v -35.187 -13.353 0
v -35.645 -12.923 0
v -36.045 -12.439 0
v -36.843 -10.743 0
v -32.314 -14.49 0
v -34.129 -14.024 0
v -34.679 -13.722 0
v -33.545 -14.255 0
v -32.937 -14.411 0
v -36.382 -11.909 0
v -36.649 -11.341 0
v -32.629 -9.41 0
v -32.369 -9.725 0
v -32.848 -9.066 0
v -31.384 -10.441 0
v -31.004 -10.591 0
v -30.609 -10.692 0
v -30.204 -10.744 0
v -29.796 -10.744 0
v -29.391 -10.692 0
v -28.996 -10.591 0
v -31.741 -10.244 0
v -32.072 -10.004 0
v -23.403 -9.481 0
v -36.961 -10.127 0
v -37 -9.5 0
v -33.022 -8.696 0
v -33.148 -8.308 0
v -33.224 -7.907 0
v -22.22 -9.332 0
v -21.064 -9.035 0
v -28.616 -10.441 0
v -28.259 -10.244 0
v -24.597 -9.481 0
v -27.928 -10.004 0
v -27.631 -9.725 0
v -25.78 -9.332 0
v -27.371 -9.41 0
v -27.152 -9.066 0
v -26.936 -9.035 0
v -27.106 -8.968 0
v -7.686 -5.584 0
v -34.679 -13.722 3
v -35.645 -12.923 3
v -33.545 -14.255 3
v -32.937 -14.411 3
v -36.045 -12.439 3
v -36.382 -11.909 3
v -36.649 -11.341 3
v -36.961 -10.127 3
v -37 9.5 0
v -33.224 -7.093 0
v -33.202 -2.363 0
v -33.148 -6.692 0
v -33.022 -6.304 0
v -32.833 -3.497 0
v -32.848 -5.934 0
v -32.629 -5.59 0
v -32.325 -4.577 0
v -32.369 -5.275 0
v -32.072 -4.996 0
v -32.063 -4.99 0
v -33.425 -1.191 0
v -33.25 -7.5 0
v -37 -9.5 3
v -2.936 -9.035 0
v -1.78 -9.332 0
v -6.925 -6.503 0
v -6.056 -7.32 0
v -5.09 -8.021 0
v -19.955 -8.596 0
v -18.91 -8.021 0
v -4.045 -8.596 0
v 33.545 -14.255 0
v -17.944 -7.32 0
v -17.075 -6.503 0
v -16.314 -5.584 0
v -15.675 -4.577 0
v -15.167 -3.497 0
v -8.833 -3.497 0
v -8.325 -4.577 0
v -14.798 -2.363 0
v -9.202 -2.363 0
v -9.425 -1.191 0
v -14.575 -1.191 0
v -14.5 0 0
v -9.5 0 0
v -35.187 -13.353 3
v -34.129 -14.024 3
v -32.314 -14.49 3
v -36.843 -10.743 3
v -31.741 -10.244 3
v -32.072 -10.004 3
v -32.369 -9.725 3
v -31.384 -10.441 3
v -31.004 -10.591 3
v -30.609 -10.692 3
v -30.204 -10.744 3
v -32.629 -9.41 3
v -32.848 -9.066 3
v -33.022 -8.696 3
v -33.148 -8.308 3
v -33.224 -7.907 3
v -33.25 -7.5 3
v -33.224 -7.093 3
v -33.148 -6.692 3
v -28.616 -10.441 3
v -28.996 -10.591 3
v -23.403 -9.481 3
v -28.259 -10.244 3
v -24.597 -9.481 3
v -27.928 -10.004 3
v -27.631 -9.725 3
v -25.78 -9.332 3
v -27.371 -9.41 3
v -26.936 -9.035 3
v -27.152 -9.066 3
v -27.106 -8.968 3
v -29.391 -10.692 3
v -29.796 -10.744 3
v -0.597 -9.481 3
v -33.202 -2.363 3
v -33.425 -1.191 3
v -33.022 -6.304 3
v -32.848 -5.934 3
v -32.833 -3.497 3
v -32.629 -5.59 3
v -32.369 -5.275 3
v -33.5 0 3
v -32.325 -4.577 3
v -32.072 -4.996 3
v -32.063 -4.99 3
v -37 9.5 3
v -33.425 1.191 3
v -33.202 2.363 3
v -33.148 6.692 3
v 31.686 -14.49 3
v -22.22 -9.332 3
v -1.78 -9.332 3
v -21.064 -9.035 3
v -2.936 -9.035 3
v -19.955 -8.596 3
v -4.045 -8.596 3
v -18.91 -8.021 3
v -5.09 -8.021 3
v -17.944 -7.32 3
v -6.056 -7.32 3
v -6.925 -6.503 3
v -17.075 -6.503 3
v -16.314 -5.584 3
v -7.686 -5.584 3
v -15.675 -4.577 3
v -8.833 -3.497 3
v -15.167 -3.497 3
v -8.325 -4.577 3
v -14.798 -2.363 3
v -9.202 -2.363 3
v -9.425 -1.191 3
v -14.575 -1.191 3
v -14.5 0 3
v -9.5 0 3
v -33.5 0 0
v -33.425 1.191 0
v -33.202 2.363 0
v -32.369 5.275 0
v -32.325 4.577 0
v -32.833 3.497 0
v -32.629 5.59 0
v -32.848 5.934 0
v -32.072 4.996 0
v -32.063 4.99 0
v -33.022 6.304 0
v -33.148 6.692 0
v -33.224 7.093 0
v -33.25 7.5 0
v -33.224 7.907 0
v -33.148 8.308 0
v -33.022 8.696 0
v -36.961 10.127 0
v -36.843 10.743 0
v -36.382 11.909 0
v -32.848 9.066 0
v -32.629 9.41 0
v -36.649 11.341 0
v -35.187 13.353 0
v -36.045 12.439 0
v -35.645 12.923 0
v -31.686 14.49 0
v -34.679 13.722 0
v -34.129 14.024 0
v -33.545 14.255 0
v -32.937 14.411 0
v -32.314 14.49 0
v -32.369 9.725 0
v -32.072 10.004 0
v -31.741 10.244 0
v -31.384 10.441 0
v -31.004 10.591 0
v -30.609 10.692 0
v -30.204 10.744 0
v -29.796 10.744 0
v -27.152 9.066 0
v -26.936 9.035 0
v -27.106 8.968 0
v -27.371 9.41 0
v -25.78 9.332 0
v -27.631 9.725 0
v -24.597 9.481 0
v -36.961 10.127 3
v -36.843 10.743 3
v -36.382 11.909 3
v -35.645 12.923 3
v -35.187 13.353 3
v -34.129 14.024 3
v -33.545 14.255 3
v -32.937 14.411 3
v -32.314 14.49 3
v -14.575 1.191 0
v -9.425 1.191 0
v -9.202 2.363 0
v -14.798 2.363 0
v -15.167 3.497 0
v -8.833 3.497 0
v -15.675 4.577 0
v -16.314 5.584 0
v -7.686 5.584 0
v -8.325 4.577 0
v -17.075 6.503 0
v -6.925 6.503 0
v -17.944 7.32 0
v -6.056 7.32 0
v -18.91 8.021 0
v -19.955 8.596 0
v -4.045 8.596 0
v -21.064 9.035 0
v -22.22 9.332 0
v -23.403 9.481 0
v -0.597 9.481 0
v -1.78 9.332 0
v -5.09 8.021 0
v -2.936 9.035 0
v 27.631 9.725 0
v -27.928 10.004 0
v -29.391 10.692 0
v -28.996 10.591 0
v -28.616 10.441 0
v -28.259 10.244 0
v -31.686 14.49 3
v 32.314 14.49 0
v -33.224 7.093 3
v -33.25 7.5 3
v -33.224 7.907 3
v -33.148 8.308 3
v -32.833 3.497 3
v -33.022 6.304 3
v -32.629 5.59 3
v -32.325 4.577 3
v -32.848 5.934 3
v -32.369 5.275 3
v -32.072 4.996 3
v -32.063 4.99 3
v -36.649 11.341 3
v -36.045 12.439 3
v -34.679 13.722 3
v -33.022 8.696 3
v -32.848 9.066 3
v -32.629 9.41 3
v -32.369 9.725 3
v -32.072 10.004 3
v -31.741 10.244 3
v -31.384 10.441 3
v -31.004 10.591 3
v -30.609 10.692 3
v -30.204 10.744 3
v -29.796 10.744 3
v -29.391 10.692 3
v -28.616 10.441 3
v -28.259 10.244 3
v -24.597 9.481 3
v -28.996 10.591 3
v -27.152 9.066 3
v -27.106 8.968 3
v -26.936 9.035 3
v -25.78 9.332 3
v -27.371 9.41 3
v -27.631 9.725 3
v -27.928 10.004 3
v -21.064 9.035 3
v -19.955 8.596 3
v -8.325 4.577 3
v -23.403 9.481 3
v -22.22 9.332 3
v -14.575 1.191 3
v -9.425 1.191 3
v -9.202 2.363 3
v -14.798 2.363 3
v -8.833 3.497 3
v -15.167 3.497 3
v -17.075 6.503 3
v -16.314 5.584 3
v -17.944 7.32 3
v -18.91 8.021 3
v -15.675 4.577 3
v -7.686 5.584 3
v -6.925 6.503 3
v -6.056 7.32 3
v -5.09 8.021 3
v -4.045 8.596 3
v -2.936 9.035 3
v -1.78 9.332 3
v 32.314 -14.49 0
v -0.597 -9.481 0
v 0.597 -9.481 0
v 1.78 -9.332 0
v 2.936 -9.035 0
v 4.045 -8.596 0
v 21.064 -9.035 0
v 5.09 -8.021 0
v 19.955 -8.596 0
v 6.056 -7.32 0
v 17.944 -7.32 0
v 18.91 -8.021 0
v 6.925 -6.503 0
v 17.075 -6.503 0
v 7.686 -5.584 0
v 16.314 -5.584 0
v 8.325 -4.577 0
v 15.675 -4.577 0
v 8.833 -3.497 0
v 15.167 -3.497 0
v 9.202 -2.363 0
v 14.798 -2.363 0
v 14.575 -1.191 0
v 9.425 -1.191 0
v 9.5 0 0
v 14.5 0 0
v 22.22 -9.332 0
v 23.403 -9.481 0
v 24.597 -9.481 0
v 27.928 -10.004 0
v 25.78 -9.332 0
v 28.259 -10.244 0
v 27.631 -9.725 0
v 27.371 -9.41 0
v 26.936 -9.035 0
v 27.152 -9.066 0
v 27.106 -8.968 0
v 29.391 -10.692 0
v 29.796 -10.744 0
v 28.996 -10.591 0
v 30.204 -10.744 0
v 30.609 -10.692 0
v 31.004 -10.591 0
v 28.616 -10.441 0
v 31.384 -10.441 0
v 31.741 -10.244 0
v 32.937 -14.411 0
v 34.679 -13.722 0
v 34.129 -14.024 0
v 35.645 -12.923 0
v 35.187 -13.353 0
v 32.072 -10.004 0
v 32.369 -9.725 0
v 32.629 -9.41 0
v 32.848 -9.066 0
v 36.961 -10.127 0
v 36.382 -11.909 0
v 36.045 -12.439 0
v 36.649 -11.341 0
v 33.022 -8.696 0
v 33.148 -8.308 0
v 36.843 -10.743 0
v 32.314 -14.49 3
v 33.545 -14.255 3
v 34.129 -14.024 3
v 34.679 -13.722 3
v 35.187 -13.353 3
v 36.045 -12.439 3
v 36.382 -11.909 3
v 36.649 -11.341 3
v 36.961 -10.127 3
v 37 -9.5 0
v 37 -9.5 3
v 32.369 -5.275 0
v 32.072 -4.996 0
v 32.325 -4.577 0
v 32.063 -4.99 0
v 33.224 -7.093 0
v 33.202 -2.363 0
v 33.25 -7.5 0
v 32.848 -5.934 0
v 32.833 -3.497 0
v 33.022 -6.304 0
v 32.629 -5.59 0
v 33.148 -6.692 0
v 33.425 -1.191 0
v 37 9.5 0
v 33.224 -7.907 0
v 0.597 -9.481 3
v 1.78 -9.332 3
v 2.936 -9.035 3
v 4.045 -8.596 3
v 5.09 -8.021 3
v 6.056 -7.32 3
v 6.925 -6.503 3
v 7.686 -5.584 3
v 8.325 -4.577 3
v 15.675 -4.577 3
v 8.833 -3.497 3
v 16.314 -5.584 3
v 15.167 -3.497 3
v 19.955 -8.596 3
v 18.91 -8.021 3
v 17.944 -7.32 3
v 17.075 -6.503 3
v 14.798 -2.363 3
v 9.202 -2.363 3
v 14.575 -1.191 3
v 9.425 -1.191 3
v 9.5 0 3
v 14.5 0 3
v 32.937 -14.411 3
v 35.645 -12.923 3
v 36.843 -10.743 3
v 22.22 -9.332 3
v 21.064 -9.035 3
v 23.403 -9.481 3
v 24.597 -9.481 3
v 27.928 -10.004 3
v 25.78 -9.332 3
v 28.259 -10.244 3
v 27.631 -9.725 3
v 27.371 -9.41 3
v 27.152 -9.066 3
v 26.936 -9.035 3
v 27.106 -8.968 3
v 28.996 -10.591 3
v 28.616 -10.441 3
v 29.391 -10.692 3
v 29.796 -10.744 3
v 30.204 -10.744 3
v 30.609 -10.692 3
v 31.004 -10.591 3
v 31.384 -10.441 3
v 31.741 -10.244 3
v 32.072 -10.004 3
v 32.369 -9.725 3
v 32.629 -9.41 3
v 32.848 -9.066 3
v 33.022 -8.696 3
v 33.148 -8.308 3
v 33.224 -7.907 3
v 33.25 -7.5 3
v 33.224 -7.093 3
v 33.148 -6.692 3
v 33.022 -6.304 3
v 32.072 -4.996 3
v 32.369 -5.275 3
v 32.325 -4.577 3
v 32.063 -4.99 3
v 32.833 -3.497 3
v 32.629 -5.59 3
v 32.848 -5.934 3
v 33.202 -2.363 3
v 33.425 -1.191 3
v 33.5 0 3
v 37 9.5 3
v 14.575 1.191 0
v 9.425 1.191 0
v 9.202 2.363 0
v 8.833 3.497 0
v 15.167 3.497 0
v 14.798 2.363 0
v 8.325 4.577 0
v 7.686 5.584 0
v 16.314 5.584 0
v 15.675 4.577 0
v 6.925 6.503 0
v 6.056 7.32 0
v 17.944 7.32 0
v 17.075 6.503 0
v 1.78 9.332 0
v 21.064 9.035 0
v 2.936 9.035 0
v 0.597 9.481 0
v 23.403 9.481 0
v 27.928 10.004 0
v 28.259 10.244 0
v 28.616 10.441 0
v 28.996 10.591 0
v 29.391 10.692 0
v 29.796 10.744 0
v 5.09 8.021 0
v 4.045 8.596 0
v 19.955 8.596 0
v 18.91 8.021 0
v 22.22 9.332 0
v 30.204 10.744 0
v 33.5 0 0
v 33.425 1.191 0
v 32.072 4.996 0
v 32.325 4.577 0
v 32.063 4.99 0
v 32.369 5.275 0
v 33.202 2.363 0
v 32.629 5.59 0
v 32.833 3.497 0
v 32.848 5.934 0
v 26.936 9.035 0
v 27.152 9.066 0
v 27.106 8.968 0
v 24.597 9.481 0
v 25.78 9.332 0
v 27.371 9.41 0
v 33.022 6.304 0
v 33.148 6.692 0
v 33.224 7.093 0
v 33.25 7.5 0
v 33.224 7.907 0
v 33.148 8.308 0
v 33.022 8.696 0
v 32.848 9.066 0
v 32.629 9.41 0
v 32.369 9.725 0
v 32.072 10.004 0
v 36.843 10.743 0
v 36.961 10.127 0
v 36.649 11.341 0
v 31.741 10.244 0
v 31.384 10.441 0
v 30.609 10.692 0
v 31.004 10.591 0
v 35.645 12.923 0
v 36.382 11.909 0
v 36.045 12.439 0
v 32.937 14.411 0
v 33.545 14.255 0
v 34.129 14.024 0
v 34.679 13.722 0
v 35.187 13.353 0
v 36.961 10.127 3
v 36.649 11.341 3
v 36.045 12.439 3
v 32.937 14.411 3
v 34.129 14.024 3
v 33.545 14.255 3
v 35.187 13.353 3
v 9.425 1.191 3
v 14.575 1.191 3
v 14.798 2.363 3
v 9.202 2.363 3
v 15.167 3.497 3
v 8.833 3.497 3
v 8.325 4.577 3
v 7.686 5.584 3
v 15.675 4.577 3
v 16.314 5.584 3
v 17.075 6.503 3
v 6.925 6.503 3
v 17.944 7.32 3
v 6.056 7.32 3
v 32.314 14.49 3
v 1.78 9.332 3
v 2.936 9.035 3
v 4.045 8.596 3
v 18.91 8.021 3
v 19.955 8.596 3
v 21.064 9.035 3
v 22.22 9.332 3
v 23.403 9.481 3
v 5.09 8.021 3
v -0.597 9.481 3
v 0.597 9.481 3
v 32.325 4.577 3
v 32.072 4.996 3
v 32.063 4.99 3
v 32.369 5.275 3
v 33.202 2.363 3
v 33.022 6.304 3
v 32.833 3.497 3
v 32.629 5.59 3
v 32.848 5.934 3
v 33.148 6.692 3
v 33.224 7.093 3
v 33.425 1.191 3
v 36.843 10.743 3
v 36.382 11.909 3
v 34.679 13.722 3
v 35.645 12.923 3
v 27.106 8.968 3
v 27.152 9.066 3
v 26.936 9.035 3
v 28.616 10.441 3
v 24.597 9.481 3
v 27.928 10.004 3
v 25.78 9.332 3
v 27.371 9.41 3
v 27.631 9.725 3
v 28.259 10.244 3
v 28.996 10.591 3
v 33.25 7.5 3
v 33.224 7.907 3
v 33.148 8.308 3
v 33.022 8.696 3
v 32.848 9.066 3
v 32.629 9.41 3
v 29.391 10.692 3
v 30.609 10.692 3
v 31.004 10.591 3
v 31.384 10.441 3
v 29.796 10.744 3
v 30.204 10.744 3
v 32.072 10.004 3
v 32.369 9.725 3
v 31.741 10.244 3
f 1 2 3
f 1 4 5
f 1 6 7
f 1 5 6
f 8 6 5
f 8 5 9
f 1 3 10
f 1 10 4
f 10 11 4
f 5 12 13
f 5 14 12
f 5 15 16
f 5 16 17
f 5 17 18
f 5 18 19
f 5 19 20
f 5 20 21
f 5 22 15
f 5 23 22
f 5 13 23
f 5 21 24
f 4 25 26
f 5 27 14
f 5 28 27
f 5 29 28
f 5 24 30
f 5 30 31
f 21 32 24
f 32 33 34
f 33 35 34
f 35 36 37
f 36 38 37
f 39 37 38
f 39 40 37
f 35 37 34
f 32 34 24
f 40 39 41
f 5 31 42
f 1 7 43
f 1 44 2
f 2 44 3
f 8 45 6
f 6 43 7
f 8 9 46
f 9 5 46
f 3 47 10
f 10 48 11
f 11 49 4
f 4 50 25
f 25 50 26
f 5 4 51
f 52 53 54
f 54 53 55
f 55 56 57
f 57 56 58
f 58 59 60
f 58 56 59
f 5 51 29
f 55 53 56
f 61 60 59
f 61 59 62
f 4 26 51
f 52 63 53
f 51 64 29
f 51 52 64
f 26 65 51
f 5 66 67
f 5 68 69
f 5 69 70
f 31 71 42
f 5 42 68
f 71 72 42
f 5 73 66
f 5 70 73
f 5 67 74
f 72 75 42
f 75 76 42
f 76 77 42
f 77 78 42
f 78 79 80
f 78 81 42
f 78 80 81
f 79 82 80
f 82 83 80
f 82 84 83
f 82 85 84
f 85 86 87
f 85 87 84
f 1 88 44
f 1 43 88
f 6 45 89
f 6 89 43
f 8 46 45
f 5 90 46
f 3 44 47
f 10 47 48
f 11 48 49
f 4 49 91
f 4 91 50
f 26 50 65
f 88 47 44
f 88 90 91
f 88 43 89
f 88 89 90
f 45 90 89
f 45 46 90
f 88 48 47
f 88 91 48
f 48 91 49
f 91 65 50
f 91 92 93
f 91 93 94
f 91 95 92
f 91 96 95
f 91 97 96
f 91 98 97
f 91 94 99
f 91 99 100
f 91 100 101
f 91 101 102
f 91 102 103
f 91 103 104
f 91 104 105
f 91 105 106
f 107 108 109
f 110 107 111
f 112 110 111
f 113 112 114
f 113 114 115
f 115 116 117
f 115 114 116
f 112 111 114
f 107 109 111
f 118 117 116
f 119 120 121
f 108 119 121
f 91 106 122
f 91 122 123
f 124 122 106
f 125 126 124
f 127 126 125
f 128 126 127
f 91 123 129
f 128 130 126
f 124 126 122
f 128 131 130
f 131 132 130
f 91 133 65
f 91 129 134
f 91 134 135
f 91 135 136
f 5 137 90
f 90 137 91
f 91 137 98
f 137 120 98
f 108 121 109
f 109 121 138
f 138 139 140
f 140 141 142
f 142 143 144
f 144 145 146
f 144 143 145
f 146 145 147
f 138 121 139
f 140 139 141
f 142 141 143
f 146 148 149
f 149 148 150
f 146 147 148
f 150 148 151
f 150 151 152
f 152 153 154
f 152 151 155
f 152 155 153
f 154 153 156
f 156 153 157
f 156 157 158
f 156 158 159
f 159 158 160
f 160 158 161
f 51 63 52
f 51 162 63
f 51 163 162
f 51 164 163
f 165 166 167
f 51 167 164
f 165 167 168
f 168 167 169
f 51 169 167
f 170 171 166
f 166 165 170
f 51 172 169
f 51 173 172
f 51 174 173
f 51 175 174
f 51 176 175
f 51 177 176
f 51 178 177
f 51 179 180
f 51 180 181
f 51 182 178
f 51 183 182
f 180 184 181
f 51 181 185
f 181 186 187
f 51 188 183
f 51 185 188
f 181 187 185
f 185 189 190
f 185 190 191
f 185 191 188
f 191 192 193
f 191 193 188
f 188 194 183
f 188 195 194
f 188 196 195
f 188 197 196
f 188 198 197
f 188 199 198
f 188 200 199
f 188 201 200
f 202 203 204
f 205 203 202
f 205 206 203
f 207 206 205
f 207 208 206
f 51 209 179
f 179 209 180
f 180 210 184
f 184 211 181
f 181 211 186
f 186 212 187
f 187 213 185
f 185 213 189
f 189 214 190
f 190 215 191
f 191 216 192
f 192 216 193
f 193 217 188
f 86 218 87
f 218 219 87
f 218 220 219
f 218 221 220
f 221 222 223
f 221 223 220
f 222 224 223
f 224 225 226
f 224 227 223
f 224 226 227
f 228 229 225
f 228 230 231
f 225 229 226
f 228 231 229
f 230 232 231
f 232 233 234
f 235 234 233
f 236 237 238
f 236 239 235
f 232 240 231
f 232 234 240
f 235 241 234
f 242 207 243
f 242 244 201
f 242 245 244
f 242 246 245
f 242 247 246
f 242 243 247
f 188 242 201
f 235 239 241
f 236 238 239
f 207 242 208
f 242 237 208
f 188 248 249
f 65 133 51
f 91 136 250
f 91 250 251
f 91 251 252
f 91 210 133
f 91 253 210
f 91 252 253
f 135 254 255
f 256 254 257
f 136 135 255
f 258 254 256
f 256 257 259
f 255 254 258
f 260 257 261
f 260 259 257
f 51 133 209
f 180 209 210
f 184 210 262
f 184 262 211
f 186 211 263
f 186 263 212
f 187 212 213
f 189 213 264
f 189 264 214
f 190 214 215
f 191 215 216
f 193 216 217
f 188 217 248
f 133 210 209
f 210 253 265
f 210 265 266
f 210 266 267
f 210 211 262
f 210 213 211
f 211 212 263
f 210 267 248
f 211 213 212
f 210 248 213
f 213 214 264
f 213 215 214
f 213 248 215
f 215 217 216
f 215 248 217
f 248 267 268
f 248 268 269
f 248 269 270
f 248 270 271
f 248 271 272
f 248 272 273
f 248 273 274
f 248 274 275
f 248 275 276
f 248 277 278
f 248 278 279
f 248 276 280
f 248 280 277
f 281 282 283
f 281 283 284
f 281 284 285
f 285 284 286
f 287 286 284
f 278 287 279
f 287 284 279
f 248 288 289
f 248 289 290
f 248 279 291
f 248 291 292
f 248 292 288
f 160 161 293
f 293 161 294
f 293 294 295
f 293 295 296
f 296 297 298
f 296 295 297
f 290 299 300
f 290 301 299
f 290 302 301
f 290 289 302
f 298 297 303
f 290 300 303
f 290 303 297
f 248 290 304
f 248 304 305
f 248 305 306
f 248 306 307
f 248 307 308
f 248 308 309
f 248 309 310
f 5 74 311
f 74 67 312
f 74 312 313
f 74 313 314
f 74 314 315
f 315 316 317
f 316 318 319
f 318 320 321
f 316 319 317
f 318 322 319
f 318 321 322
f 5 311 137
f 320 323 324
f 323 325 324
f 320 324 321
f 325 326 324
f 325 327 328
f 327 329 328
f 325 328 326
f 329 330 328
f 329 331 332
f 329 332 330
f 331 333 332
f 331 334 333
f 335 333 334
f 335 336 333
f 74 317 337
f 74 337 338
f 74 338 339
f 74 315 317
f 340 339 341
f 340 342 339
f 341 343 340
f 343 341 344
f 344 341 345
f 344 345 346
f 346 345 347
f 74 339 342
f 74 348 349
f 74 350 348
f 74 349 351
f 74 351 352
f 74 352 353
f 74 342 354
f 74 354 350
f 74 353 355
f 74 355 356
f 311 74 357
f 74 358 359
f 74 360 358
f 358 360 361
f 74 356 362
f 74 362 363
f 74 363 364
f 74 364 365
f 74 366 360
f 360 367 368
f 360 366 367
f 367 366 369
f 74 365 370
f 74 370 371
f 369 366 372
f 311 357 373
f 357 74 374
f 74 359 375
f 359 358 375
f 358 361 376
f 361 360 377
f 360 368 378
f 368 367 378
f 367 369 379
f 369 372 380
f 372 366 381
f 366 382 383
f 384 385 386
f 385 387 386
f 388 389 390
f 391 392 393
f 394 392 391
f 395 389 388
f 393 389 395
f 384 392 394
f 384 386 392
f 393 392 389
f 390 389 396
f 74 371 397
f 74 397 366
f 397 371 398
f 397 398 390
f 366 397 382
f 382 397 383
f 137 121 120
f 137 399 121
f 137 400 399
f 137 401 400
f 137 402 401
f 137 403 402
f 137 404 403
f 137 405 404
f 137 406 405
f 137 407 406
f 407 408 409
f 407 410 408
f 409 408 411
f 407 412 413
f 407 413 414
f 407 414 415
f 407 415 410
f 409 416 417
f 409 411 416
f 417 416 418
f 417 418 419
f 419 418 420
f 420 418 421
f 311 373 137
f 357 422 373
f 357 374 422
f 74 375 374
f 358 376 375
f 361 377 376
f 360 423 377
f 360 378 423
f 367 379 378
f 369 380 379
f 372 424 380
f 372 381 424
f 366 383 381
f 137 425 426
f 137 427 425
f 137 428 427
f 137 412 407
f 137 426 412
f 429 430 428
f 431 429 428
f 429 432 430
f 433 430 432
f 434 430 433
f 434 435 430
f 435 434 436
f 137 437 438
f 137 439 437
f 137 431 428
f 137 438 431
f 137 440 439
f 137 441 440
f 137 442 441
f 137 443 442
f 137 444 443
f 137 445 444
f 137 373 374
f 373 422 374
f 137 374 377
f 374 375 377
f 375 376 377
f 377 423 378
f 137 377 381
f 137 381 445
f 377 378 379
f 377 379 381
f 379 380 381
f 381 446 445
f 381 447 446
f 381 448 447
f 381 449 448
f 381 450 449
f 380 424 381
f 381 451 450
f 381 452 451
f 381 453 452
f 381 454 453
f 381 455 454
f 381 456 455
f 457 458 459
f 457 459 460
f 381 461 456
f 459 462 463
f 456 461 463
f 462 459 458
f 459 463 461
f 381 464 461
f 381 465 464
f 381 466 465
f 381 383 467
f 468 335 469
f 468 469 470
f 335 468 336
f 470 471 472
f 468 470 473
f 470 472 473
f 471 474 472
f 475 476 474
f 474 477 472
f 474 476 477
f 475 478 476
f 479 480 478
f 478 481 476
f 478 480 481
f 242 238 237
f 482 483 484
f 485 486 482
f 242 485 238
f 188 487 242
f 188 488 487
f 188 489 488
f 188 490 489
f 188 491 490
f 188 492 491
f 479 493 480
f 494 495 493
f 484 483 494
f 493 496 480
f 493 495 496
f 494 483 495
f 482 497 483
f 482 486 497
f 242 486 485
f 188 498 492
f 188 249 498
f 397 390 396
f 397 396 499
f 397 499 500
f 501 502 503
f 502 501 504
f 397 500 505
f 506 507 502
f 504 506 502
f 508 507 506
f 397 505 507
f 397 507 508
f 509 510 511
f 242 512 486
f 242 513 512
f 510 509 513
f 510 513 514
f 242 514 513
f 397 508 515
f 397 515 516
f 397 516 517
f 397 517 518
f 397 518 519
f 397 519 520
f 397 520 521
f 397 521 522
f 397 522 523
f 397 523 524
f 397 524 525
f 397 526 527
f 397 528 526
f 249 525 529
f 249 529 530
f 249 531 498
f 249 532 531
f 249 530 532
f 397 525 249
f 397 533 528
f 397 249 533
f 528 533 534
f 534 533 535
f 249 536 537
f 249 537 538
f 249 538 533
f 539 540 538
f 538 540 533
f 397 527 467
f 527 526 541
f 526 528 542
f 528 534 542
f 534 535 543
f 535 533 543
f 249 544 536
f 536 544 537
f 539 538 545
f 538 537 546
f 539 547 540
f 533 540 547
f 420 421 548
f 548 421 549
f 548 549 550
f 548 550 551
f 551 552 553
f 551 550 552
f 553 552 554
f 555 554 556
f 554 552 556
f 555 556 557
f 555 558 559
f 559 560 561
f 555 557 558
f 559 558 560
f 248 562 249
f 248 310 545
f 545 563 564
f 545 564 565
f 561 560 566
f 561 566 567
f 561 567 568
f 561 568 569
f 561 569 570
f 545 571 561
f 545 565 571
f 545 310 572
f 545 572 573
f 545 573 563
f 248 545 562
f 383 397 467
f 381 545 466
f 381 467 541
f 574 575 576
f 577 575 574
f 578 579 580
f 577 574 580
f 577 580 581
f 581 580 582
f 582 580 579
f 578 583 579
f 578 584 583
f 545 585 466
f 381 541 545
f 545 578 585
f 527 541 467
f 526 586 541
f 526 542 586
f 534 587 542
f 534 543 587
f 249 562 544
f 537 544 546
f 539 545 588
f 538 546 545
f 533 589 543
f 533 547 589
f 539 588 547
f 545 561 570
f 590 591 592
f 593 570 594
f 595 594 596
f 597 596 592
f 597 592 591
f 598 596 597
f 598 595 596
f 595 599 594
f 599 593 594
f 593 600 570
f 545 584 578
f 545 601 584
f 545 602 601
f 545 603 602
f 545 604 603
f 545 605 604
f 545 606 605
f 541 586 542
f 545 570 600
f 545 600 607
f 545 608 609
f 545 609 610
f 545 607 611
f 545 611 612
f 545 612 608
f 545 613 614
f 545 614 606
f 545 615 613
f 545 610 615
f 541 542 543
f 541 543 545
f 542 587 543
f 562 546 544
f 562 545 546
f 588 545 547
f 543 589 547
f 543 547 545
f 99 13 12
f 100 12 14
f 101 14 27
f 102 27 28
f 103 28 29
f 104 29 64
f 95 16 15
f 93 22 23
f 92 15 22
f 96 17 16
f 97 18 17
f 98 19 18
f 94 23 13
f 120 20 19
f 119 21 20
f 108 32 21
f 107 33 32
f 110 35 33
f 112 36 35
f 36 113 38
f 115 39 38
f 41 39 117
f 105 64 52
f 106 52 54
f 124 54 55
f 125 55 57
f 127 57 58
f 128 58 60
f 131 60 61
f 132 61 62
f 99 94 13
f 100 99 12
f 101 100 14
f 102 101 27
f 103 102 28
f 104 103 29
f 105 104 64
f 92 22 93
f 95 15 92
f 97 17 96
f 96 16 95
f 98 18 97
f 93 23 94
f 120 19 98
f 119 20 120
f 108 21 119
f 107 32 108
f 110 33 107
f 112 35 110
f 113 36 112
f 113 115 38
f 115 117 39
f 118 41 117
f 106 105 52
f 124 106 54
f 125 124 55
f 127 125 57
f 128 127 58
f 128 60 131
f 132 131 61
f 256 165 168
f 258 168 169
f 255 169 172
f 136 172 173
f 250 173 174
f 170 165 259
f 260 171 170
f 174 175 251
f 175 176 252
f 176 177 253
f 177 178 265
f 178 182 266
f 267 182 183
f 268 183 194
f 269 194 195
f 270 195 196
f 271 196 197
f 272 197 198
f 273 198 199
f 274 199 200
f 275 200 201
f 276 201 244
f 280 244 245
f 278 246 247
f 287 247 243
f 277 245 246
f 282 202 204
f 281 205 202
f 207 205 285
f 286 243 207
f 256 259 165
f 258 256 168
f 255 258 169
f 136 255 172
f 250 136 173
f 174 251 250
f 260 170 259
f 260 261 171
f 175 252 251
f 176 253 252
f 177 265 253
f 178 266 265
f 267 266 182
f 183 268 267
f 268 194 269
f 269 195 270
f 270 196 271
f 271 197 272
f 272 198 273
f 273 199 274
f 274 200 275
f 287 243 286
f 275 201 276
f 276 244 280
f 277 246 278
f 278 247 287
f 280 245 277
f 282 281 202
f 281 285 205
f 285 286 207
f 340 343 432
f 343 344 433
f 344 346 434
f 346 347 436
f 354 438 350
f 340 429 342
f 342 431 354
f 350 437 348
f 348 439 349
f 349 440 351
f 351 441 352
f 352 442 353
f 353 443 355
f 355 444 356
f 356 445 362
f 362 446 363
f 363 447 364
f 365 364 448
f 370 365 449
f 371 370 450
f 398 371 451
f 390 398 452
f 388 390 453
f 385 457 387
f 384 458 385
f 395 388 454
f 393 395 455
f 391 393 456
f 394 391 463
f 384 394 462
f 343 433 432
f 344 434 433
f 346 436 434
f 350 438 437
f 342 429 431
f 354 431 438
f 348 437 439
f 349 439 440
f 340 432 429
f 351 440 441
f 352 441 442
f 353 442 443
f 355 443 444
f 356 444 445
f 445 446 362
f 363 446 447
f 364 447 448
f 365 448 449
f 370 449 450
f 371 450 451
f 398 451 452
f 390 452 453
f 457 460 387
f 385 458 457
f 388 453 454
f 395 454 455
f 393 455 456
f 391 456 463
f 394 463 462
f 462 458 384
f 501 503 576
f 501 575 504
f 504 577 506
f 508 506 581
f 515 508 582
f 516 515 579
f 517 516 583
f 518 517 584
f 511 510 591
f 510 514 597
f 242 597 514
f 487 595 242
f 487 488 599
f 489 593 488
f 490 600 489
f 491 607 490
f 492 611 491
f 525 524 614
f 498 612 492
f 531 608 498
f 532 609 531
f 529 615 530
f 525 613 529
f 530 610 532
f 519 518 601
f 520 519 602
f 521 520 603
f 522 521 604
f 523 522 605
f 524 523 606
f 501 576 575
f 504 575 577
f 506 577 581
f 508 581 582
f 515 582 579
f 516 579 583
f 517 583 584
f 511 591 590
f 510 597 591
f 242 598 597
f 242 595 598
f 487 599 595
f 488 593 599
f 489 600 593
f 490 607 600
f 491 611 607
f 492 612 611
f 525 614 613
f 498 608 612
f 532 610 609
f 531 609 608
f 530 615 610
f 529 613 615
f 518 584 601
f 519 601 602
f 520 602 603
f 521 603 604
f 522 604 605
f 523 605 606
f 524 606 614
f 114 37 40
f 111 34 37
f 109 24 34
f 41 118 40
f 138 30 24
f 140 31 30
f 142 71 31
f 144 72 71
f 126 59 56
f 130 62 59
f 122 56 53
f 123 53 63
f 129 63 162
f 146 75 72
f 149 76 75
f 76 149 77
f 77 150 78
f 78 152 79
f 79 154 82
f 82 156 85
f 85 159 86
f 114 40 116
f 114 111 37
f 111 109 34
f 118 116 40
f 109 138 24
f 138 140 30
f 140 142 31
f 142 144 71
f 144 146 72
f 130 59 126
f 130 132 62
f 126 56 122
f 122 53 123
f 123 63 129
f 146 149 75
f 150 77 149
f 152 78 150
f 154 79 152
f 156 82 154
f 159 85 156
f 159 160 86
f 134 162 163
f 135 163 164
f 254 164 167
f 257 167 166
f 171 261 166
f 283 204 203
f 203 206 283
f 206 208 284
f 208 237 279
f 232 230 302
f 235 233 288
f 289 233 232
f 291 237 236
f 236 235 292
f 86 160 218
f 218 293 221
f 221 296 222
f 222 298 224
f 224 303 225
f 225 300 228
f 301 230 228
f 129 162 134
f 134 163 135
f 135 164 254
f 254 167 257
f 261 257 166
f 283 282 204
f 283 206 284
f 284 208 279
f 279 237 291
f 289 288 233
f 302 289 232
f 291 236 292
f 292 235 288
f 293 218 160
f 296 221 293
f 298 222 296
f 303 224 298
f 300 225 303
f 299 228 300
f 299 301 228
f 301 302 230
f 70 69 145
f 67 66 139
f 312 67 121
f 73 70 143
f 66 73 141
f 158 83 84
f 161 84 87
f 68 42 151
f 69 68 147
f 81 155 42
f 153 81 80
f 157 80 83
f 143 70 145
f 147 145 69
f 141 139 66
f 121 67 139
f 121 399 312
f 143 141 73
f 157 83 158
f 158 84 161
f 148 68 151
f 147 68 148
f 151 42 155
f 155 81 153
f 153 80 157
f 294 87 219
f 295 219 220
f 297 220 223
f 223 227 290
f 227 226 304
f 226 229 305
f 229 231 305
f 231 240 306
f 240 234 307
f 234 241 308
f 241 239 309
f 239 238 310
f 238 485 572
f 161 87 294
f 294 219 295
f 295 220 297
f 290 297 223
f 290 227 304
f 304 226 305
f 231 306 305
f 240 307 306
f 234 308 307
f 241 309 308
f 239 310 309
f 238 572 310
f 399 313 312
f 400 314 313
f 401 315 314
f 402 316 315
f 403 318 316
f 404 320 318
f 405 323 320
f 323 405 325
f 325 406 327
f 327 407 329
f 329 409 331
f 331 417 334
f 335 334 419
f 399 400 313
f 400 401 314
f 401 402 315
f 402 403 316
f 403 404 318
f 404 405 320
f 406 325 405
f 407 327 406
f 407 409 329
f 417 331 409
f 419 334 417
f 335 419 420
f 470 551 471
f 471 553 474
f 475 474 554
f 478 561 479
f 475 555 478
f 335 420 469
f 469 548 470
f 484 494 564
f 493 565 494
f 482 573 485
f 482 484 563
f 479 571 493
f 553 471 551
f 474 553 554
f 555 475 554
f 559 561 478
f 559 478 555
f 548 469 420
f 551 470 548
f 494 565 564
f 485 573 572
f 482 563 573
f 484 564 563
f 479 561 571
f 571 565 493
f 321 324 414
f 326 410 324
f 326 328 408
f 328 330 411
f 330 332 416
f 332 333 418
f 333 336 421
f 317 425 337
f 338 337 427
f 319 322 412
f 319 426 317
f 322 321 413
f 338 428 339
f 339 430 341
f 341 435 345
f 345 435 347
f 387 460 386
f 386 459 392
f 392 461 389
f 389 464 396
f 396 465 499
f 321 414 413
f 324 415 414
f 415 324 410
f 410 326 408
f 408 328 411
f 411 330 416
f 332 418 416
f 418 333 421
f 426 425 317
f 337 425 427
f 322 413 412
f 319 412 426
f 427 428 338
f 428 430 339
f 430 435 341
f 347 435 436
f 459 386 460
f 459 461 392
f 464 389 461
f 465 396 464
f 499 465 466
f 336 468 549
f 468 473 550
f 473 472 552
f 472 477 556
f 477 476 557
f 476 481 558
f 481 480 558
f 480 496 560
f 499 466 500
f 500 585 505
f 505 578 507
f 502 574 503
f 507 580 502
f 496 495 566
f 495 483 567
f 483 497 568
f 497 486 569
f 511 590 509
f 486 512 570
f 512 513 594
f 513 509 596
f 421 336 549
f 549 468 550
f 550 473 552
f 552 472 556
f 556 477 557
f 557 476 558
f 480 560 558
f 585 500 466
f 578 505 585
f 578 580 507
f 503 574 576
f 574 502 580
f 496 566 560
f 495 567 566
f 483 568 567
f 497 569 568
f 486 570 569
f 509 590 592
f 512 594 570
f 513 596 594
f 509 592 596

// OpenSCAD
$fn = 50;

difference() {
	union() {
		hull() {
			translate(v = [-32.0, 9.5, 0]) {
				cylinder(h = 3, r = 5);
			}
			translate(v = [32.0, 9.5, 0]) {
				cylinder(h = 3, r = 5);
			}
			translate(v = [-32.0, -9.5, 0]) {
				cylinder(h = 3, r = 5);
			}
			translate(v = [32.0, -9.5, 0]) {
				cylinder(h = 3, r = 5);
			}
		}
	}
	union() {
		translate(v = [-30.0, -7.5, -100.0]) {
			cylinder(h = 200, r = 3.25);
		}
		translate(v = [-30.0, 7.5, -100.0]) {
			cylinder(h = 200, r = 3.25);
		}
		translate(v = [30.0, -7.5, -100.0]) {
			cylinder(h = 200, r = 3.25);
		}
		translate(v = [30.0, 7.5, -100.0]) {
			cylinder(h = 200, r = 3.25);
		}
		translate(v = [-30.0, -7.5, -100.0]) {
			cylinder(h = 200, r = 1.8);
		}
		translate(v = [-30.0, 7.5, -100.0]) {
			cylinder(h = 200, r = 1.8);
		}
		translate(v = [30.0, -7.5, -100.0]) {
			cylinder(h = 200, r = 1.8);
		}
		translate(v = [30.0, 7.5, -100.0]) {
			cylinder(h = 200, r = 1.8);
		}
		translate(v = [-24.0, 0, 0.0]) {
			cylinder(h = 3, r = 9.5);
		}
		cylinder(h = 3, r = 9.5);
		translate(v = [24.0, 0, 0.0]) {
			cylinder(h = 3, r = 9.5);
		}
	}
}
